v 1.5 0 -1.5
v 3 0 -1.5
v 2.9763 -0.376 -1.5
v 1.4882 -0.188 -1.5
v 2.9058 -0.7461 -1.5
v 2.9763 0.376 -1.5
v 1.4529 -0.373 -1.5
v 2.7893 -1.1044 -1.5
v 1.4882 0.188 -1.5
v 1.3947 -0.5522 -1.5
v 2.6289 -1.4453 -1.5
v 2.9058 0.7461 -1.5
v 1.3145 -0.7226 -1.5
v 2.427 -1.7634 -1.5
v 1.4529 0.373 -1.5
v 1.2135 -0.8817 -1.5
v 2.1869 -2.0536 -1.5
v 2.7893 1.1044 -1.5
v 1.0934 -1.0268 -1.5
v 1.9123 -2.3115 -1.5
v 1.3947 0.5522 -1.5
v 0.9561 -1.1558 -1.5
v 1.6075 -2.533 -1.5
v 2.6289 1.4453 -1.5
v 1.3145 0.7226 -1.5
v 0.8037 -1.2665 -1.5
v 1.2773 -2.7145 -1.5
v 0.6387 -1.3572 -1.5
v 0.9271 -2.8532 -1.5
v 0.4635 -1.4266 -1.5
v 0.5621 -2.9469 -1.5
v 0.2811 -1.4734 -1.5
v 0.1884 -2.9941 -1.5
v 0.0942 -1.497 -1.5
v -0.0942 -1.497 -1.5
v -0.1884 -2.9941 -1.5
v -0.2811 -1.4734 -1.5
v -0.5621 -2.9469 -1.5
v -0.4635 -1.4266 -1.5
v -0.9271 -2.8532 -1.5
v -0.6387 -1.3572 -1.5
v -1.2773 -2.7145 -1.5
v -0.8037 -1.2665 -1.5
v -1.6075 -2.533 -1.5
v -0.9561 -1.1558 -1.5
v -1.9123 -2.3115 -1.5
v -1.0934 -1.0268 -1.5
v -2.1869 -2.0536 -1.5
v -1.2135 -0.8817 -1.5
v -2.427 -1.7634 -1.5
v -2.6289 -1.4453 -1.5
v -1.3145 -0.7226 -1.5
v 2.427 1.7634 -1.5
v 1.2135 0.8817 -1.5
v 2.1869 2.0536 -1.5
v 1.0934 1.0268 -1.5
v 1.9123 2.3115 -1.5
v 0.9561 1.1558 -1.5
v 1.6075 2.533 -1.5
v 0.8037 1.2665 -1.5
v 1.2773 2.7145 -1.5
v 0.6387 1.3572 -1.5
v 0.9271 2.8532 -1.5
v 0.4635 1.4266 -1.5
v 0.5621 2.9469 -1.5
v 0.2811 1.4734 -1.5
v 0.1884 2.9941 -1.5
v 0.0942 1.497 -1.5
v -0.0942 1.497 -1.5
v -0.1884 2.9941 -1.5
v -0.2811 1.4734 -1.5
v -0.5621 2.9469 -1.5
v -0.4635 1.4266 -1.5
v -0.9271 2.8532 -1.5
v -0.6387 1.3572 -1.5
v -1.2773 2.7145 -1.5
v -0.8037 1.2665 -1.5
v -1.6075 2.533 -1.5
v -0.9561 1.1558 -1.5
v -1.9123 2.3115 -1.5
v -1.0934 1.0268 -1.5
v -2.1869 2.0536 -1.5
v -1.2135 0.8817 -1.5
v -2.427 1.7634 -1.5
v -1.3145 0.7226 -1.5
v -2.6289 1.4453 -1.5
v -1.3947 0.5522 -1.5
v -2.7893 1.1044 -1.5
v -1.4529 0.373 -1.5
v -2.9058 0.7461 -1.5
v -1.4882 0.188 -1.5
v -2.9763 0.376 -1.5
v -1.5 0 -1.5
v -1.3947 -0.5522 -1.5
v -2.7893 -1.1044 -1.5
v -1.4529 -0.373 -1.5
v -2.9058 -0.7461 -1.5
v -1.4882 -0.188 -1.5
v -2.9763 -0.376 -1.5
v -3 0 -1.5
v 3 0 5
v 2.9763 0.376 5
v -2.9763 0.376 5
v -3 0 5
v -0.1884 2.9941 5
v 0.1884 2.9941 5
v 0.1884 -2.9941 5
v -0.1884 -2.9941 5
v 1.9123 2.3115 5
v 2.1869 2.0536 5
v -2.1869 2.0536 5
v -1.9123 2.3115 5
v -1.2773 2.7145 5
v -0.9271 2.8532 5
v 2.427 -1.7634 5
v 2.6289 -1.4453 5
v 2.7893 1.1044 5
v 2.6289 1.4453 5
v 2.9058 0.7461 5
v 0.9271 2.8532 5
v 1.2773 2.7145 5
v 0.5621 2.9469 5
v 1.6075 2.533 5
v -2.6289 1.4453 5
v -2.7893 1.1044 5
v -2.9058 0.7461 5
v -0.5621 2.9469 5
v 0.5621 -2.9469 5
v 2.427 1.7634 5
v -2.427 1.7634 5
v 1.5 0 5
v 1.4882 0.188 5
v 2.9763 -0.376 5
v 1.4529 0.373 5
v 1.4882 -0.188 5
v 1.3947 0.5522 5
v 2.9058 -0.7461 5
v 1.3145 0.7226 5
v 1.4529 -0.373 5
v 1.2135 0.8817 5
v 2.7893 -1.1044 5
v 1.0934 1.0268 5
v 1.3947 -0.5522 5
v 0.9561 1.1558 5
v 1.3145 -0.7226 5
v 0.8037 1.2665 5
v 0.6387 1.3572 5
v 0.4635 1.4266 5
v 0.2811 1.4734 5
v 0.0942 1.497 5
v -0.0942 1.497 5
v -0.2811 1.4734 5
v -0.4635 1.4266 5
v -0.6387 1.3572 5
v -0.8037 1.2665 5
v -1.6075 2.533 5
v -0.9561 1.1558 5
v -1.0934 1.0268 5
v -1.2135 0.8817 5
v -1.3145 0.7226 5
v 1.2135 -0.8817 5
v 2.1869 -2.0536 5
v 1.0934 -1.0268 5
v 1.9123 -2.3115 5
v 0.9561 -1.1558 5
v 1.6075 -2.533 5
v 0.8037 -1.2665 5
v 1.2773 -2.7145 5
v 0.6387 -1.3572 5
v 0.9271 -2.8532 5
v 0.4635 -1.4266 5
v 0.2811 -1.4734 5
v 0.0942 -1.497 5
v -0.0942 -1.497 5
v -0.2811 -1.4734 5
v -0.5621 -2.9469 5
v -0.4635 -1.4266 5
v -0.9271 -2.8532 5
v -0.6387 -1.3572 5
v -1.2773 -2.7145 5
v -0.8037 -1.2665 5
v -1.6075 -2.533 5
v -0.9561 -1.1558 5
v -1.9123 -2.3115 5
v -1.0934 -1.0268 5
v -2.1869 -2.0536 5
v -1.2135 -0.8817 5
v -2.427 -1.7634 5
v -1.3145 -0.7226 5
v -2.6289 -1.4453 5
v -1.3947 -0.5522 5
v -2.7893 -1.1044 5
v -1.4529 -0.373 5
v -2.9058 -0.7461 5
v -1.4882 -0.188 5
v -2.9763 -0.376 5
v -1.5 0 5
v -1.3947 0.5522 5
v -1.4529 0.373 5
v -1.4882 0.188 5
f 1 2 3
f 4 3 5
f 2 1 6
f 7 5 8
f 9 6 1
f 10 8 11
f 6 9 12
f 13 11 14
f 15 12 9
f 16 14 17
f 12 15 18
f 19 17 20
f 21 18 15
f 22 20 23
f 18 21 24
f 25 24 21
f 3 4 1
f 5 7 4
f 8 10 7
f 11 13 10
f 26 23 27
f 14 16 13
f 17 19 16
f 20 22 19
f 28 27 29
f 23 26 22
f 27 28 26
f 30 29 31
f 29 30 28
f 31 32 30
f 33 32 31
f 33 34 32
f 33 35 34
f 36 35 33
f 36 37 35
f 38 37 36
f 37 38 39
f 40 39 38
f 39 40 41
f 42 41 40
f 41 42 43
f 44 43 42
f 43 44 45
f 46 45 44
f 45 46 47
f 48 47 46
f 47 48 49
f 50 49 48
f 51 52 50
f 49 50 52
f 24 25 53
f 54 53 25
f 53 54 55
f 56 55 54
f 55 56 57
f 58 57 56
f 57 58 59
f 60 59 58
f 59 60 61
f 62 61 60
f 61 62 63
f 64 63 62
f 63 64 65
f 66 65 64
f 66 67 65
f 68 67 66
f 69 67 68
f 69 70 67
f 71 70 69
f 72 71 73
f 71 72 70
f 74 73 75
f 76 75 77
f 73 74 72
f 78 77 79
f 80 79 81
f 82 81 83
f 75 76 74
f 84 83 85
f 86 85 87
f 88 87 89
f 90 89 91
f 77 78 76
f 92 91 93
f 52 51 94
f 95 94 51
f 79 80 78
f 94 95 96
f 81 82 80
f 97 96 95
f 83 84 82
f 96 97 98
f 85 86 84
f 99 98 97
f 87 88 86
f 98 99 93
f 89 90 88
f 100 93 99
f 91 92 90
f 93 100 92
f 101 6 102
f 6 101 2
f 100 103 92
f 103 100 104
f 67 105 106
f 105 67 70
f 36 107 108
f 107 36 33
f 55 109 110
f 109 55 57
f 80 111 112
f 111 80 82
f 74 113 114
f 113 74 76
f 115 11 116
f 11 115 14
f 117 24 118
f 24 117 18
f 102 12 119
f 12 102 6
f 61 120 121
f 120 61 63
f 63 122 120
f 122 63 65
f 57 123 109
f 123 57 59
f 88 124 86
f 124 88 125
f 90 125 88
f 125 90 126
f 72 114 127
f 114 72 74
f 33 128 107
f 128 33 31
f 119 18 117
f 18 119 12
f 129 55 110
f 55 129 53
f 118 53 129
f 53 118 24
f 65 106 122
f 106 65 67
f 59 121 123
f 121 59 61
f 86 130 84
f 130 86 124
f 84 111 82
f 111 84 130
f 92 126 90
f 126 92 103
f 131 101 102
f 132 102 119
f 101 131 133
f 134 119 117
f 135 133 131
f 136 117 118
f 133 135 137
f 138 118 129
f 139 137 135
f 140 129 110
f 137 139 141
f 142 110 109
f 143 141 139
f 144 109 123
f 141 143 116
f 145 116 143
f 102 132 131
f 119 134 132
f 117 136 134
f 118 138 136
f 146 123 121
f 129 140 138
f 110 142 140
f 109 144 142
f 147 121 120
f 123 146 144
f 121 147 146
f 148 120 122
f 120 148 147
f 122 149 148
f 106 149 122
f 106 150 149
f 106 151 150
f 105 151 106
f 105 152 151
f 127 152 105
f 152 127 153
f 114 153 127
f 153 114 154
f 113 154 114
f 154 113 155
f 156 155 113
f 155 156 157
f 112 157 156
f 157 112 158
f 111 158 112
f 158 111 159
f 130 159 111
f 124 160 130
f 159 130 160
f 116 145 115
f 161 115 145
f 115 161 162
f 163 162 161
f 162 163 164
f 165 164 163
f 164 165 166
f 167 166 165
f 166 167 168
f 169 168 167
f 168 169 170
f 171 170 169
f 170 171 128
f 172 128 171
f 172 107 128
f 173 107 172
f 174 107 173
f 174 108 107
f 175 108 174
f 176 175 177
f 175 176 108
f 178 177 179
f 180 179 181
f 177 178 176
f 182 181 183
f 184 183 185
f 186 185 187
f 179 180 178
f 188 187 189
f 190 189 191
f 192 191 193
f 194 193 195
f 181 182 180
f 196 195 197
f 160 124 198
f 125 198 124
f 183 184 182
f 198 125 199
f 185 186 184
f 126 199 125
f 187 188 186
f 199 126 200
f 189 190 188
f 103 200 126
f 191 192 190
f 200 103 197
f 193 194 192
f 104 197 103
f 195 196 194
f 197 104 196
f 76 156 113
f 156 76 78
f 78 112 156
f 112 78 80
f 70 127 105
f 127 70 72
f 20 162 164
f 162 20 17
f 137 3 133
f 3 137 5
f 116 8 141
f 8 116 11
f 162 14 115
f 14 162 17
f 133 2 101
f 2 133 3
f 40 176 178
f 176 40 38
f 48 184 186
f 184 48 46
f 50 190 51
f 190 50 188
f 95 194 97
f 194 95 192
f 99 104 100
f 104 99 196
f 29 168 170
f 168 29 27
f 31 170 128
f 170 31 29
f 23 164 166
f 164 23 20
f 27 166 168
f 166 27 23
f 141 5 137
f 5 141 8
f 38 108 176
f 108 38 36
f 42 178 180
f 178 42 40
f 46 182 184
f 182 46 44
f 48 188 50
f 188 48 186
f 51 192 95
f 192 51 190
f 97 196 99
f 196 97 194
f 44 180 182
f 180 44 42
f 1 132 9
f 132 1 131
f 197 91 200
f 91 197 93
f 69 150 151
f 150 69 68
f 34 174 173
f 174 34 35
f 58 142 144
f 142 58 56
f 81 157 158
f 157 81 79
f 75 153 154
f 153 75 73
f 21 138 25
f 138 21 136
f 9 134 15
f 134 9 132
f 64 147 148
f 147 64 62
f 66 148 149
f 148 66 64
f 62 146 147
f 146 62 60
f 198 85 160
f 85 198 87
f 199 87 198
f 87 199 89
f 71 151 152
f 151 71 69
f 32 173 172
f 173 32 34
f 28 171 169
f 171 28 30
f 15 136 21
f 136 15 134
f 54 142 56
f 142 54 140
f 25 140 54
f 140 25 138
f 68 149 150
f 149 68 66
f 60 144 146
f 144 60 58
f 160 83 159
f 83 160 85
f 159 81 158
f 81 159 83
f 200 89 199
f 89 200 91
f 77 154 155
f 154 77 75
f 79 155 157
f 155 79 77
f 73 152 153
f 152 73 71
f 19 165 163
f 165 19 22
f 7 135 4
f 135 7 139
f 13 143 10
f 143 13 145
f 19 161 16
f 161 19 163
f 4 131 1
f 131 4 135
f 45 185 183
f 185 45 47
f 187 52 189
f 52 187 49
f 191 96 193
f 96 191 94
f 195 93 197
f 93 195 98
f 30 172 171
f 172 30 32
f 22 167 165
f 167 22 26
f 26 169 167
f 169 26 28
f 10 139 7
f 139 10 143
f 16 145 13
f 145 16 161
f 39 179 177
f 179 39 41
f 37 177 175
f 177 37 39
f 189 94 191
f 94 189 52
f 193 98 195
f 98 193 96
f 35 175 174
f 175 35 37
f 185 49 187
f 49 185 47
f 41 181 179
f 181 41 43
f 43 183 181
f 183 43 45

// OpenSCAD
$fn = 50;


difference() {
	union() {
		translate(v = [0, 0, -1.5000000000]) {
			cylinder(h = 3, r = 1.0000000000);
		}
		translate(v = [0, 0, -1.5000000000]) {
			cylinder(h = 6.5000000000, r = 3.0000000000);
		}
	}
	union() {
		translate(v = [0, 0, -50.0000000000]) {
			cylinder(h = 100, r = 1.5000000000);
		}
	}
}
